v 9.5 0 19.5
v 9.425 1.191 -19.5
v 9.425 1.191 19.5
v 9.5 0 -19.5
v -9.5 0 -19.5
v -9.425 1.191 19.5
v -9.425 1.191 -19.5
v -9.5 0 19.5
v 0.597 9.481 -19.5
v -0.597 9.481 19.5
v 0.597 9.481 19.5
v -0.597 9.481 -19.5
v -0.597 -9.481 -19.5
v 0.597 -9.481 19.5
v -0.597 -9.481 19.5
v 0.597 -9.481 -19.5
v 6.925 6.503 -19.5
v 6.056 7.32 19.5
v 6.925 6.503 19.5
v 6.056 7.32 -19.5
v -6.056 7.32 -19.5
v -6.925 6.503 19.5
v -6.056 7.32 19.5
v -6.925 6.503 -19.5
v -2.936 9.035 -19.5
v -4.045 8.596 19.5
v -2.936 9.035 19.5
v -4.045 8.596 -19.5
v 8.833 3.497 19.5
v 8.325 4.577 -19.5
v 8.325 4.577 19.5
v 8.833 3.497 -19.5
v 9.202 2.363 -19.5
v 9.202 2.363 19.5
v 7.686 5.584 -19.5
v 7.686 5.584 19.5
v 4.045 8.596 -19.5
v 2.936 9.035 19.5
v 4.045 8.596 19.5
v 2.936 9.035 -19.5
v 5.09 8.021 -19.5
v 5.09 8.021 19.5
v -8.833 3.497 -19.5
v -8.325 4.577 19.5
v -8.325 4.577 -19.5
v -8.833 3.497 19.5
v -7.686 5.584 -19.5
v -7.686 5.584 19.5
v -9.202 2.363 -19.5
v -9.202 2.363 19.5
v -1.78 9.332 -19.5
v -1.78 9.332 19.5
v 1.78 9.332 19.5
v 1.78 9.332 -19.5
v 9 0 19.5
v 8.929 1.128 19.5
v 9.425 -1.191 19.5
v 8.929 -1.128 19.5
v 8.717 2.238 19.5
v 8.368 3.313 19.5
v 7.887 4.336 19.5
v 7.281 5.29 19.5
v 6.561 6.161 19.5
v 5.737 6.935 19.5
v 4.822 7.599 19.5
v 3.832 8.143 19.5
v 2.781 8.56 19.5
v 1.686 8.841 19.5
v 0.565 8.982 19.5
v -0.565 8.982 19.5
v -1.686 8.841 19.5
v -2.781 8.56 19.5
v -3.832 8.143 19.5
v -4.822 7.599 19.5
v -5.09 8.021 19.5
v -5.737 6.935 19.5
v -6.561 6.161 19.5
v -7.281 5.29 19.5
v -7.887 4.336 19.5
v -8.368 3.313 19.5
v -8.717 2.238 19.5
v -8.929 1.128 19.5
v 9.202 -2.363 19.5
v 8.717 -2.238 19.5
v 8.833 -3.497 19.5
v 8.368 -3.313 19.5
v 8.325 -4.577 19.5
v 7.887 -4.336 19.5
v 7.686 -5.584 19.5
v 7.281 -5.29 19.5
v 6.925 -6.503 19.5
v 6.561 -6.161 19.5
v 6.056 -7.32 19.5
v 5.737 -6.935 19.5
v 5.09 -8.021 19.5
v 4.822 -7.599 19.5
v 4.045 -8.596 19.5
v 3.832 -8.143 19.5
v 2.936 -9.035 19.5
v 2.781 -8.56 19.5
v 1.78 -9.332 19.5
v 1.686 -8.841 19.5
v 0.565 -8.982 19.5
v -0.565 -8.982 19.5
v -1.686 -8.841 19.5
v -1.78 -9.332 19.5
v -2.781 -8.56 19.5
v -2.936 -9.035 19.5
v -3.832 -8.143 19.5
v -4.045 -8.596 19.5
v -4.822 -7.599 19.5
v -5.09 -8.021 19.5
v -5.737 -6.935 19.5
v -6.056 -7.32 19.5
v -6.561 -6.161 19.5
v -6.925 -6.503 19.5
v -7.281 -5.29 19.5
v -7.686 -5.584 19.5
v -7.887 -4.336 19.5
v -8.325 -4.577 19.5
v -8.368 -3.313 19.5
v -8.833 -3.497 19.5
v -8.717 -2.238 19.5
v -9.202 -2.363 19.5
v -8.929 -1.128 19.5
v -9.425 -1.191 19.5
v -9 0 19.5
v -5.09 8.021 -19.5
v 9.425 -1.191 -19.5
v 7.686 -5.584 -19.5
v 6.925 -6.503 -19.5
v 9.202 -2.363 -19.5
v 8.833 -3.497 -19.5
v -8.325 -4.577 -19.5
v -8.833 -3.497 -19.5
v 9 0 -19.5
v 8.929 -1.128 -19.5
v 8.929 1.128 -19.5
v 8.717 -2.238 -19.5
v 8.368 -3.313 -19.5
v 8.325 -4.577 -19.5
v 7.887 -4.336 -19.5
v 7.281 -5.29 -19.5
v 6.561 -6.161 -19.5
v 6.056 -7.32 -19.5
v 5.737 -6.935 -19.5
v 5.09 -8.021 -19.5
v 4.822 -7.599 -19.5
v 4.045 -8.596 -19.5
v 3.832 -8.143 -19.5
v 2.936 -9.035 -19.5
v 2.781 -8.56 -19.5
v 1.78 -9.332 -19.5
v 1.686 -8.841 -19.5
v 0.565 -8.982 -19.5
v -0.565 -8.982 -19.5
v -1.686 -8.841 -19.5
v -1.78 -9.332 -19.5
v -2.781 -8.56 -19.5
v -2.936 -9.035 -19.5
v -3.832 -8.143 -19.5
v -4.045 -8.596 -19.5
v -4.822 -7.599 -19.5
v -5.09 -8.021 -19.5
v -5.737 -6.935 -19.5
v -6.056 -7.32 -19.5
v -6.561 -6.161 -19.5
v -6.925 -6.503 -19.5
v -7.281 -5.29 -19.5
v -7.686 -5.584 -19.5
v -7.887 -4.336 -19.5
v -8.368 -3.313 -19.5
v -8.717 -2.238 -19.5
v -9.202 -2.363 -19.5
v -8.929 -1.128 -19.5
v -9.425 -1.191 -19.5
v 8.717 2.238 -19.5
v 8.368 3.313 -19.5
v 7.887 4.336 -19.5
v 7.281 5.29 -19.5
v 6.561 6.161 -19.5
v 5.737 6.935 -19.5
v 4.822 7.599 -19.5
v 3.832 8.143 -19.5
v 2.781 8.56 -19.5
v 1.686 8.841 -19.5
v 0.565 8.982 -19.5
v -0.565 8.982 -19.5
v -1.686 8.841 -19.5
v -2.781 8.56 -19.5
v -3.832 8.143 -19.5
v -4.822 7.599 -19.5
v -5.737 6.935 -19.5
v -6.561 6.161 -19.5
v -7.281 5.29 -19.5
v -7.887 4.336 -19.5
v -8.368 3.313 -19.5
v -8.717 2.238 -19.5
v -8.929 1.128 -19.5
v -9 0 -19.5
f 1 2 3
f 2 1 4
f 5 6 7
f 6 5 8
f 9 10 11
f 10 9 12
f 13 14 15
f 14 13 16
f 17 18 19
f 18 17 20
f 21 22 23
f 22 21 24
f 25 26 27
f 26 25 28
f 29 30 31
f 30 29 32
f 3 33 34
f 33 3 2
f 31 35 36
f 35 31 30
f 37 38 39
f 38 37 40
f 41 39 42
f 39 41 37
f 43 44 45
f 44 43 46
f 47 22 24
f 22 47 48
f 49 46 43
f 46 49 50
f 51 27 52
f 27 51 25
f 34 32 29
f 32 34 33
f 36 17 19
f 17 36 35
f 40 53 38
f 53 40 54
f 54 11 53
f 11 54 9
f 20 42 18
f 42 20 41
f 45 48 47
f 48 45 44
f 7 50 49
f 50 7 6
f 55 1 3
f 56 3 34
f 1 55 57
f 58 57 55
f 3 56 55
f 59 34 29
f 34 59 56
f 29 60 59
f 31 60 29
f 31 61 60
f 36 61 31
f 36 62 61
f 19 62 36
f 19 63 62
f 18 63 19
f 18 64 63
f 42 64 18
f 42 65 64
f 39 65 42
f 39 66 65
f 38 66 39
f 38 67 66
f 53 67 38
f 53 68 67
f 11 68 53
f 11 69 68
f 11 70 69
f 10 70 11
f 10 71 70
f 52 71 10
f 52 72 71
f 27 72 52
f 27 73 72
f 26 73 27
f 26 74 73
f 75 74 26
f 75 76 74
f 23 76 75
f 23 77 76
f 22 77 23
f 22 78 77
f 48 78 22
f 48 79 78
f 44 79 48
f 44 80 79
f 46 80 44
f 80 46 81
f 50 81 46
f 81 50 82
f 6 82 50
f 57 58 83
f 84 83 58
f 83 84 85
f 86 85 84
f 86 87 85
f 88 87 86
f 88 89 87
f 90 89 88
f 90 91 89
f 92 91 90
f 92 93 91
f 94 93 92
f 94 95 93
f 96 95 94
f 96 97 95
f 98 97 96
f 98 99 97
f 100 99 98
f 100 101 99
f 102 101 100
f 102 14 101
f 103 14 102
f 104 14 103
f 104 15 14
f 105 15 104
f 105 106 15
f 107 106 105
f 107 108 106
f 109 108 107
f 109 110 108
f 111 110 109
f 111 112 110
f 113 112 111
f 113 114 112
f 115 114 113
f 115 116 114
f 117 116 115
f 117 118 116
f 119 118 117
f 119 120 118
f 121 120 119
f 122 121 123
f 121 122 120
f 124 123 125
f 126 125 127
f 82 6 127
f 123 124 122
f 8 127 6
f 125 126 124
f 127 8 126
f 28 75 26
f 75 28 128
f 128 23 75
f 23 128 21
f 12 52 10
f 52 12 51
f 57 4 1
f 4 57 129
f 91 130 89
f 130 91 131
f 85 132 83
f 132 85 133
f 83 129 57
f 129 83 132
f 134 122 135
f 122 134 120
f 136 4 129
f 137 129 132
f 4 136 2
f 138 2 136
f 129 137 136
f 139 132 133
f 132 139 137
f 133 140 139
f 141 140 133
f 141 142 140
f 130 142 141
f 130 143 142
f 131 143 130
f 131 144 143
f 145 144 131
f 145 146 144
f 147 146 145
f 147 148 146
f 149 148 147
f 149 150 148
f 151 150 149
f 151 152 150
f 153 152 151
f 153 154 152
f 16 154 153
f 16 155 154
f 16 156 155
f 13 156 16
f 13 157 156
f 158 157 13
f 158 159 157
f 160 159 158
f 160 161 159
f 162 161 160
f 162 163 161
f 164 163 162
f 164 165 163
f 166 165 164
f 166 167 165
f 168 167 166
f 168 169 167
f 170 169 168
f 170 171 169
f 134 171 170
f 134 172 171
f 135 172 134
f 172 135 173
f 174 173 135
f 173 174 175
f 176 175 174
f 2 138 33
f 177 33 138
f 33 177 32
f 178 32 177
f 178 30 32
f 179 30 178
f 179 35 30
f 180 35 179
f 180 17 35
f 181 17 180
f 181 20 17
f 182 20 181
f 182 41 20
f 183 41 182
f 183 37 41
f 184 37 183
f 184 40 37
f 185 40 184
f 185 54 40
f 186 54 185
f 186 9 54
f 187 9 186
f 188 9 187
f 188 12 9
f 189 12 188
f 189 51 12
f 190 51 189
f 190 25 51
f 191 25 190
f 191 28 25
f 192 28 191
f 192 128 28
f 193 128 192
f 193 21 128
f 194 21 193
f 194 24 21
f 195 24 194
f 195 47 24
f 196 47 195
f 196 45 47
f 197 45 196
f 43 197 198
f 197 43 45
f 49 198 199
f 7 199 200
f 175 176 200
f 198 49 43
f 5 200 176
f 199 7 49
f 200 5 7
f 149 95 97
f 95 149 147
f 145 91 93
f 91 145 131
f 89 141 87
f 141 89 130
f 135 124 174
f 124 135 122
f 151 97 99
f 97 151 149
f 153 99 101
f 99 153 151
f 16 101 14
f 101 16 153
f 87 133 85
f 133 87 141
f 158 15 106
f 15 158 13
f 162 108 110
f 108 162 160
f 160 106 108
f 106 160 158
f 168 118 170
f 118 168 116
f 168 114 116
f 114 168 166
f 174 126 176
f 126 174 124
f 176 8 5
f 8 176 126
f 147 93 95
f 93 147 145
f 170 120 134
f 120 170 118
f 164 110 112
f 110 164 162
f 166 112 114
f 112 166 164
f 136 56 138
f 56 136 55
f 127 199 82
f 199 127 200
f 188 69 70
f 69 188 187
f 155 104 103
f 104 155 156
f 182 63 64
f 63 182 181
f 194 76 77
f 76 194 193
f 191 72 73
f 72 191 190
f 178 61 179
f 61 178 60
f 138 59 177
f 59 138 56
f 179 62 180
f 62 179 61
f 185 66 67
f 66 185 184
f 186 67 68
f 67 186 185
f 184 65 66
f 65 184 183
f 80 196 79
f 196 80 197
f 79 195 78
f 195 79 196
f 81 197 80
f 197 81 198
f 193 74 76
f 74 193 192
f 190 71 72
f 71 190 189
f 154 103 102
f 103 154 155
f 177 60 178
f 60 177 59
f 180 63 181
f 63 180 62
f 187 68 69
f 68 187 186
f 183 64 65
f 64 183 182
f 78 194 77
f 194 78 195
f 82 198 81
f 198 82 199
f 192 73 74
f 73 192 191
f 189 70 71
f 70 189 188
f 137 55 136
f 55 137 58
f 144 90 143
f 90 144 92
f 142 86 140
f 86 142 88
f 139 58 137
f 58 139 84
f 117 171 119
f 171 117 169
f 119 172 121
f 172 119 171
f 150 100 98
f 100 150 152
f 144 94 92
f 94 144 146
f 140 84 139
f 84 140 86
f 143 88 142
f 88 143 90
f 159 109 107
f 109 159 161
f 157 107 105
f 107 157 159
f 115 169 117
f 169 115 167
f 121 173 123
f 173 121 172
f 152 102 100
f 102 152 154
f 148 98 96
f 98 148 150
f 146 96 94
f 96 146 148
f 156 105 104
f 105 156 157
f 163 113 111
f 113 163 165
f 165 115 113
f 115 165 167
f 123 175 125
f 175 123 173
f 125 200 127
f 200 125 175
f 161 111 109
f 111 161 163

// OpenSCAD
$fn = 50;


difference() {
	union() {
		translate(v = [0, 0, -19.5000000000]) {
			cylinder(h = 39, r = 9.5000000000);
		}
	}
	union() {
		translate(v = [0, 0, -100.0000000000]) {
			cylinder(h = 200, r = 9);
		}
	}
}
